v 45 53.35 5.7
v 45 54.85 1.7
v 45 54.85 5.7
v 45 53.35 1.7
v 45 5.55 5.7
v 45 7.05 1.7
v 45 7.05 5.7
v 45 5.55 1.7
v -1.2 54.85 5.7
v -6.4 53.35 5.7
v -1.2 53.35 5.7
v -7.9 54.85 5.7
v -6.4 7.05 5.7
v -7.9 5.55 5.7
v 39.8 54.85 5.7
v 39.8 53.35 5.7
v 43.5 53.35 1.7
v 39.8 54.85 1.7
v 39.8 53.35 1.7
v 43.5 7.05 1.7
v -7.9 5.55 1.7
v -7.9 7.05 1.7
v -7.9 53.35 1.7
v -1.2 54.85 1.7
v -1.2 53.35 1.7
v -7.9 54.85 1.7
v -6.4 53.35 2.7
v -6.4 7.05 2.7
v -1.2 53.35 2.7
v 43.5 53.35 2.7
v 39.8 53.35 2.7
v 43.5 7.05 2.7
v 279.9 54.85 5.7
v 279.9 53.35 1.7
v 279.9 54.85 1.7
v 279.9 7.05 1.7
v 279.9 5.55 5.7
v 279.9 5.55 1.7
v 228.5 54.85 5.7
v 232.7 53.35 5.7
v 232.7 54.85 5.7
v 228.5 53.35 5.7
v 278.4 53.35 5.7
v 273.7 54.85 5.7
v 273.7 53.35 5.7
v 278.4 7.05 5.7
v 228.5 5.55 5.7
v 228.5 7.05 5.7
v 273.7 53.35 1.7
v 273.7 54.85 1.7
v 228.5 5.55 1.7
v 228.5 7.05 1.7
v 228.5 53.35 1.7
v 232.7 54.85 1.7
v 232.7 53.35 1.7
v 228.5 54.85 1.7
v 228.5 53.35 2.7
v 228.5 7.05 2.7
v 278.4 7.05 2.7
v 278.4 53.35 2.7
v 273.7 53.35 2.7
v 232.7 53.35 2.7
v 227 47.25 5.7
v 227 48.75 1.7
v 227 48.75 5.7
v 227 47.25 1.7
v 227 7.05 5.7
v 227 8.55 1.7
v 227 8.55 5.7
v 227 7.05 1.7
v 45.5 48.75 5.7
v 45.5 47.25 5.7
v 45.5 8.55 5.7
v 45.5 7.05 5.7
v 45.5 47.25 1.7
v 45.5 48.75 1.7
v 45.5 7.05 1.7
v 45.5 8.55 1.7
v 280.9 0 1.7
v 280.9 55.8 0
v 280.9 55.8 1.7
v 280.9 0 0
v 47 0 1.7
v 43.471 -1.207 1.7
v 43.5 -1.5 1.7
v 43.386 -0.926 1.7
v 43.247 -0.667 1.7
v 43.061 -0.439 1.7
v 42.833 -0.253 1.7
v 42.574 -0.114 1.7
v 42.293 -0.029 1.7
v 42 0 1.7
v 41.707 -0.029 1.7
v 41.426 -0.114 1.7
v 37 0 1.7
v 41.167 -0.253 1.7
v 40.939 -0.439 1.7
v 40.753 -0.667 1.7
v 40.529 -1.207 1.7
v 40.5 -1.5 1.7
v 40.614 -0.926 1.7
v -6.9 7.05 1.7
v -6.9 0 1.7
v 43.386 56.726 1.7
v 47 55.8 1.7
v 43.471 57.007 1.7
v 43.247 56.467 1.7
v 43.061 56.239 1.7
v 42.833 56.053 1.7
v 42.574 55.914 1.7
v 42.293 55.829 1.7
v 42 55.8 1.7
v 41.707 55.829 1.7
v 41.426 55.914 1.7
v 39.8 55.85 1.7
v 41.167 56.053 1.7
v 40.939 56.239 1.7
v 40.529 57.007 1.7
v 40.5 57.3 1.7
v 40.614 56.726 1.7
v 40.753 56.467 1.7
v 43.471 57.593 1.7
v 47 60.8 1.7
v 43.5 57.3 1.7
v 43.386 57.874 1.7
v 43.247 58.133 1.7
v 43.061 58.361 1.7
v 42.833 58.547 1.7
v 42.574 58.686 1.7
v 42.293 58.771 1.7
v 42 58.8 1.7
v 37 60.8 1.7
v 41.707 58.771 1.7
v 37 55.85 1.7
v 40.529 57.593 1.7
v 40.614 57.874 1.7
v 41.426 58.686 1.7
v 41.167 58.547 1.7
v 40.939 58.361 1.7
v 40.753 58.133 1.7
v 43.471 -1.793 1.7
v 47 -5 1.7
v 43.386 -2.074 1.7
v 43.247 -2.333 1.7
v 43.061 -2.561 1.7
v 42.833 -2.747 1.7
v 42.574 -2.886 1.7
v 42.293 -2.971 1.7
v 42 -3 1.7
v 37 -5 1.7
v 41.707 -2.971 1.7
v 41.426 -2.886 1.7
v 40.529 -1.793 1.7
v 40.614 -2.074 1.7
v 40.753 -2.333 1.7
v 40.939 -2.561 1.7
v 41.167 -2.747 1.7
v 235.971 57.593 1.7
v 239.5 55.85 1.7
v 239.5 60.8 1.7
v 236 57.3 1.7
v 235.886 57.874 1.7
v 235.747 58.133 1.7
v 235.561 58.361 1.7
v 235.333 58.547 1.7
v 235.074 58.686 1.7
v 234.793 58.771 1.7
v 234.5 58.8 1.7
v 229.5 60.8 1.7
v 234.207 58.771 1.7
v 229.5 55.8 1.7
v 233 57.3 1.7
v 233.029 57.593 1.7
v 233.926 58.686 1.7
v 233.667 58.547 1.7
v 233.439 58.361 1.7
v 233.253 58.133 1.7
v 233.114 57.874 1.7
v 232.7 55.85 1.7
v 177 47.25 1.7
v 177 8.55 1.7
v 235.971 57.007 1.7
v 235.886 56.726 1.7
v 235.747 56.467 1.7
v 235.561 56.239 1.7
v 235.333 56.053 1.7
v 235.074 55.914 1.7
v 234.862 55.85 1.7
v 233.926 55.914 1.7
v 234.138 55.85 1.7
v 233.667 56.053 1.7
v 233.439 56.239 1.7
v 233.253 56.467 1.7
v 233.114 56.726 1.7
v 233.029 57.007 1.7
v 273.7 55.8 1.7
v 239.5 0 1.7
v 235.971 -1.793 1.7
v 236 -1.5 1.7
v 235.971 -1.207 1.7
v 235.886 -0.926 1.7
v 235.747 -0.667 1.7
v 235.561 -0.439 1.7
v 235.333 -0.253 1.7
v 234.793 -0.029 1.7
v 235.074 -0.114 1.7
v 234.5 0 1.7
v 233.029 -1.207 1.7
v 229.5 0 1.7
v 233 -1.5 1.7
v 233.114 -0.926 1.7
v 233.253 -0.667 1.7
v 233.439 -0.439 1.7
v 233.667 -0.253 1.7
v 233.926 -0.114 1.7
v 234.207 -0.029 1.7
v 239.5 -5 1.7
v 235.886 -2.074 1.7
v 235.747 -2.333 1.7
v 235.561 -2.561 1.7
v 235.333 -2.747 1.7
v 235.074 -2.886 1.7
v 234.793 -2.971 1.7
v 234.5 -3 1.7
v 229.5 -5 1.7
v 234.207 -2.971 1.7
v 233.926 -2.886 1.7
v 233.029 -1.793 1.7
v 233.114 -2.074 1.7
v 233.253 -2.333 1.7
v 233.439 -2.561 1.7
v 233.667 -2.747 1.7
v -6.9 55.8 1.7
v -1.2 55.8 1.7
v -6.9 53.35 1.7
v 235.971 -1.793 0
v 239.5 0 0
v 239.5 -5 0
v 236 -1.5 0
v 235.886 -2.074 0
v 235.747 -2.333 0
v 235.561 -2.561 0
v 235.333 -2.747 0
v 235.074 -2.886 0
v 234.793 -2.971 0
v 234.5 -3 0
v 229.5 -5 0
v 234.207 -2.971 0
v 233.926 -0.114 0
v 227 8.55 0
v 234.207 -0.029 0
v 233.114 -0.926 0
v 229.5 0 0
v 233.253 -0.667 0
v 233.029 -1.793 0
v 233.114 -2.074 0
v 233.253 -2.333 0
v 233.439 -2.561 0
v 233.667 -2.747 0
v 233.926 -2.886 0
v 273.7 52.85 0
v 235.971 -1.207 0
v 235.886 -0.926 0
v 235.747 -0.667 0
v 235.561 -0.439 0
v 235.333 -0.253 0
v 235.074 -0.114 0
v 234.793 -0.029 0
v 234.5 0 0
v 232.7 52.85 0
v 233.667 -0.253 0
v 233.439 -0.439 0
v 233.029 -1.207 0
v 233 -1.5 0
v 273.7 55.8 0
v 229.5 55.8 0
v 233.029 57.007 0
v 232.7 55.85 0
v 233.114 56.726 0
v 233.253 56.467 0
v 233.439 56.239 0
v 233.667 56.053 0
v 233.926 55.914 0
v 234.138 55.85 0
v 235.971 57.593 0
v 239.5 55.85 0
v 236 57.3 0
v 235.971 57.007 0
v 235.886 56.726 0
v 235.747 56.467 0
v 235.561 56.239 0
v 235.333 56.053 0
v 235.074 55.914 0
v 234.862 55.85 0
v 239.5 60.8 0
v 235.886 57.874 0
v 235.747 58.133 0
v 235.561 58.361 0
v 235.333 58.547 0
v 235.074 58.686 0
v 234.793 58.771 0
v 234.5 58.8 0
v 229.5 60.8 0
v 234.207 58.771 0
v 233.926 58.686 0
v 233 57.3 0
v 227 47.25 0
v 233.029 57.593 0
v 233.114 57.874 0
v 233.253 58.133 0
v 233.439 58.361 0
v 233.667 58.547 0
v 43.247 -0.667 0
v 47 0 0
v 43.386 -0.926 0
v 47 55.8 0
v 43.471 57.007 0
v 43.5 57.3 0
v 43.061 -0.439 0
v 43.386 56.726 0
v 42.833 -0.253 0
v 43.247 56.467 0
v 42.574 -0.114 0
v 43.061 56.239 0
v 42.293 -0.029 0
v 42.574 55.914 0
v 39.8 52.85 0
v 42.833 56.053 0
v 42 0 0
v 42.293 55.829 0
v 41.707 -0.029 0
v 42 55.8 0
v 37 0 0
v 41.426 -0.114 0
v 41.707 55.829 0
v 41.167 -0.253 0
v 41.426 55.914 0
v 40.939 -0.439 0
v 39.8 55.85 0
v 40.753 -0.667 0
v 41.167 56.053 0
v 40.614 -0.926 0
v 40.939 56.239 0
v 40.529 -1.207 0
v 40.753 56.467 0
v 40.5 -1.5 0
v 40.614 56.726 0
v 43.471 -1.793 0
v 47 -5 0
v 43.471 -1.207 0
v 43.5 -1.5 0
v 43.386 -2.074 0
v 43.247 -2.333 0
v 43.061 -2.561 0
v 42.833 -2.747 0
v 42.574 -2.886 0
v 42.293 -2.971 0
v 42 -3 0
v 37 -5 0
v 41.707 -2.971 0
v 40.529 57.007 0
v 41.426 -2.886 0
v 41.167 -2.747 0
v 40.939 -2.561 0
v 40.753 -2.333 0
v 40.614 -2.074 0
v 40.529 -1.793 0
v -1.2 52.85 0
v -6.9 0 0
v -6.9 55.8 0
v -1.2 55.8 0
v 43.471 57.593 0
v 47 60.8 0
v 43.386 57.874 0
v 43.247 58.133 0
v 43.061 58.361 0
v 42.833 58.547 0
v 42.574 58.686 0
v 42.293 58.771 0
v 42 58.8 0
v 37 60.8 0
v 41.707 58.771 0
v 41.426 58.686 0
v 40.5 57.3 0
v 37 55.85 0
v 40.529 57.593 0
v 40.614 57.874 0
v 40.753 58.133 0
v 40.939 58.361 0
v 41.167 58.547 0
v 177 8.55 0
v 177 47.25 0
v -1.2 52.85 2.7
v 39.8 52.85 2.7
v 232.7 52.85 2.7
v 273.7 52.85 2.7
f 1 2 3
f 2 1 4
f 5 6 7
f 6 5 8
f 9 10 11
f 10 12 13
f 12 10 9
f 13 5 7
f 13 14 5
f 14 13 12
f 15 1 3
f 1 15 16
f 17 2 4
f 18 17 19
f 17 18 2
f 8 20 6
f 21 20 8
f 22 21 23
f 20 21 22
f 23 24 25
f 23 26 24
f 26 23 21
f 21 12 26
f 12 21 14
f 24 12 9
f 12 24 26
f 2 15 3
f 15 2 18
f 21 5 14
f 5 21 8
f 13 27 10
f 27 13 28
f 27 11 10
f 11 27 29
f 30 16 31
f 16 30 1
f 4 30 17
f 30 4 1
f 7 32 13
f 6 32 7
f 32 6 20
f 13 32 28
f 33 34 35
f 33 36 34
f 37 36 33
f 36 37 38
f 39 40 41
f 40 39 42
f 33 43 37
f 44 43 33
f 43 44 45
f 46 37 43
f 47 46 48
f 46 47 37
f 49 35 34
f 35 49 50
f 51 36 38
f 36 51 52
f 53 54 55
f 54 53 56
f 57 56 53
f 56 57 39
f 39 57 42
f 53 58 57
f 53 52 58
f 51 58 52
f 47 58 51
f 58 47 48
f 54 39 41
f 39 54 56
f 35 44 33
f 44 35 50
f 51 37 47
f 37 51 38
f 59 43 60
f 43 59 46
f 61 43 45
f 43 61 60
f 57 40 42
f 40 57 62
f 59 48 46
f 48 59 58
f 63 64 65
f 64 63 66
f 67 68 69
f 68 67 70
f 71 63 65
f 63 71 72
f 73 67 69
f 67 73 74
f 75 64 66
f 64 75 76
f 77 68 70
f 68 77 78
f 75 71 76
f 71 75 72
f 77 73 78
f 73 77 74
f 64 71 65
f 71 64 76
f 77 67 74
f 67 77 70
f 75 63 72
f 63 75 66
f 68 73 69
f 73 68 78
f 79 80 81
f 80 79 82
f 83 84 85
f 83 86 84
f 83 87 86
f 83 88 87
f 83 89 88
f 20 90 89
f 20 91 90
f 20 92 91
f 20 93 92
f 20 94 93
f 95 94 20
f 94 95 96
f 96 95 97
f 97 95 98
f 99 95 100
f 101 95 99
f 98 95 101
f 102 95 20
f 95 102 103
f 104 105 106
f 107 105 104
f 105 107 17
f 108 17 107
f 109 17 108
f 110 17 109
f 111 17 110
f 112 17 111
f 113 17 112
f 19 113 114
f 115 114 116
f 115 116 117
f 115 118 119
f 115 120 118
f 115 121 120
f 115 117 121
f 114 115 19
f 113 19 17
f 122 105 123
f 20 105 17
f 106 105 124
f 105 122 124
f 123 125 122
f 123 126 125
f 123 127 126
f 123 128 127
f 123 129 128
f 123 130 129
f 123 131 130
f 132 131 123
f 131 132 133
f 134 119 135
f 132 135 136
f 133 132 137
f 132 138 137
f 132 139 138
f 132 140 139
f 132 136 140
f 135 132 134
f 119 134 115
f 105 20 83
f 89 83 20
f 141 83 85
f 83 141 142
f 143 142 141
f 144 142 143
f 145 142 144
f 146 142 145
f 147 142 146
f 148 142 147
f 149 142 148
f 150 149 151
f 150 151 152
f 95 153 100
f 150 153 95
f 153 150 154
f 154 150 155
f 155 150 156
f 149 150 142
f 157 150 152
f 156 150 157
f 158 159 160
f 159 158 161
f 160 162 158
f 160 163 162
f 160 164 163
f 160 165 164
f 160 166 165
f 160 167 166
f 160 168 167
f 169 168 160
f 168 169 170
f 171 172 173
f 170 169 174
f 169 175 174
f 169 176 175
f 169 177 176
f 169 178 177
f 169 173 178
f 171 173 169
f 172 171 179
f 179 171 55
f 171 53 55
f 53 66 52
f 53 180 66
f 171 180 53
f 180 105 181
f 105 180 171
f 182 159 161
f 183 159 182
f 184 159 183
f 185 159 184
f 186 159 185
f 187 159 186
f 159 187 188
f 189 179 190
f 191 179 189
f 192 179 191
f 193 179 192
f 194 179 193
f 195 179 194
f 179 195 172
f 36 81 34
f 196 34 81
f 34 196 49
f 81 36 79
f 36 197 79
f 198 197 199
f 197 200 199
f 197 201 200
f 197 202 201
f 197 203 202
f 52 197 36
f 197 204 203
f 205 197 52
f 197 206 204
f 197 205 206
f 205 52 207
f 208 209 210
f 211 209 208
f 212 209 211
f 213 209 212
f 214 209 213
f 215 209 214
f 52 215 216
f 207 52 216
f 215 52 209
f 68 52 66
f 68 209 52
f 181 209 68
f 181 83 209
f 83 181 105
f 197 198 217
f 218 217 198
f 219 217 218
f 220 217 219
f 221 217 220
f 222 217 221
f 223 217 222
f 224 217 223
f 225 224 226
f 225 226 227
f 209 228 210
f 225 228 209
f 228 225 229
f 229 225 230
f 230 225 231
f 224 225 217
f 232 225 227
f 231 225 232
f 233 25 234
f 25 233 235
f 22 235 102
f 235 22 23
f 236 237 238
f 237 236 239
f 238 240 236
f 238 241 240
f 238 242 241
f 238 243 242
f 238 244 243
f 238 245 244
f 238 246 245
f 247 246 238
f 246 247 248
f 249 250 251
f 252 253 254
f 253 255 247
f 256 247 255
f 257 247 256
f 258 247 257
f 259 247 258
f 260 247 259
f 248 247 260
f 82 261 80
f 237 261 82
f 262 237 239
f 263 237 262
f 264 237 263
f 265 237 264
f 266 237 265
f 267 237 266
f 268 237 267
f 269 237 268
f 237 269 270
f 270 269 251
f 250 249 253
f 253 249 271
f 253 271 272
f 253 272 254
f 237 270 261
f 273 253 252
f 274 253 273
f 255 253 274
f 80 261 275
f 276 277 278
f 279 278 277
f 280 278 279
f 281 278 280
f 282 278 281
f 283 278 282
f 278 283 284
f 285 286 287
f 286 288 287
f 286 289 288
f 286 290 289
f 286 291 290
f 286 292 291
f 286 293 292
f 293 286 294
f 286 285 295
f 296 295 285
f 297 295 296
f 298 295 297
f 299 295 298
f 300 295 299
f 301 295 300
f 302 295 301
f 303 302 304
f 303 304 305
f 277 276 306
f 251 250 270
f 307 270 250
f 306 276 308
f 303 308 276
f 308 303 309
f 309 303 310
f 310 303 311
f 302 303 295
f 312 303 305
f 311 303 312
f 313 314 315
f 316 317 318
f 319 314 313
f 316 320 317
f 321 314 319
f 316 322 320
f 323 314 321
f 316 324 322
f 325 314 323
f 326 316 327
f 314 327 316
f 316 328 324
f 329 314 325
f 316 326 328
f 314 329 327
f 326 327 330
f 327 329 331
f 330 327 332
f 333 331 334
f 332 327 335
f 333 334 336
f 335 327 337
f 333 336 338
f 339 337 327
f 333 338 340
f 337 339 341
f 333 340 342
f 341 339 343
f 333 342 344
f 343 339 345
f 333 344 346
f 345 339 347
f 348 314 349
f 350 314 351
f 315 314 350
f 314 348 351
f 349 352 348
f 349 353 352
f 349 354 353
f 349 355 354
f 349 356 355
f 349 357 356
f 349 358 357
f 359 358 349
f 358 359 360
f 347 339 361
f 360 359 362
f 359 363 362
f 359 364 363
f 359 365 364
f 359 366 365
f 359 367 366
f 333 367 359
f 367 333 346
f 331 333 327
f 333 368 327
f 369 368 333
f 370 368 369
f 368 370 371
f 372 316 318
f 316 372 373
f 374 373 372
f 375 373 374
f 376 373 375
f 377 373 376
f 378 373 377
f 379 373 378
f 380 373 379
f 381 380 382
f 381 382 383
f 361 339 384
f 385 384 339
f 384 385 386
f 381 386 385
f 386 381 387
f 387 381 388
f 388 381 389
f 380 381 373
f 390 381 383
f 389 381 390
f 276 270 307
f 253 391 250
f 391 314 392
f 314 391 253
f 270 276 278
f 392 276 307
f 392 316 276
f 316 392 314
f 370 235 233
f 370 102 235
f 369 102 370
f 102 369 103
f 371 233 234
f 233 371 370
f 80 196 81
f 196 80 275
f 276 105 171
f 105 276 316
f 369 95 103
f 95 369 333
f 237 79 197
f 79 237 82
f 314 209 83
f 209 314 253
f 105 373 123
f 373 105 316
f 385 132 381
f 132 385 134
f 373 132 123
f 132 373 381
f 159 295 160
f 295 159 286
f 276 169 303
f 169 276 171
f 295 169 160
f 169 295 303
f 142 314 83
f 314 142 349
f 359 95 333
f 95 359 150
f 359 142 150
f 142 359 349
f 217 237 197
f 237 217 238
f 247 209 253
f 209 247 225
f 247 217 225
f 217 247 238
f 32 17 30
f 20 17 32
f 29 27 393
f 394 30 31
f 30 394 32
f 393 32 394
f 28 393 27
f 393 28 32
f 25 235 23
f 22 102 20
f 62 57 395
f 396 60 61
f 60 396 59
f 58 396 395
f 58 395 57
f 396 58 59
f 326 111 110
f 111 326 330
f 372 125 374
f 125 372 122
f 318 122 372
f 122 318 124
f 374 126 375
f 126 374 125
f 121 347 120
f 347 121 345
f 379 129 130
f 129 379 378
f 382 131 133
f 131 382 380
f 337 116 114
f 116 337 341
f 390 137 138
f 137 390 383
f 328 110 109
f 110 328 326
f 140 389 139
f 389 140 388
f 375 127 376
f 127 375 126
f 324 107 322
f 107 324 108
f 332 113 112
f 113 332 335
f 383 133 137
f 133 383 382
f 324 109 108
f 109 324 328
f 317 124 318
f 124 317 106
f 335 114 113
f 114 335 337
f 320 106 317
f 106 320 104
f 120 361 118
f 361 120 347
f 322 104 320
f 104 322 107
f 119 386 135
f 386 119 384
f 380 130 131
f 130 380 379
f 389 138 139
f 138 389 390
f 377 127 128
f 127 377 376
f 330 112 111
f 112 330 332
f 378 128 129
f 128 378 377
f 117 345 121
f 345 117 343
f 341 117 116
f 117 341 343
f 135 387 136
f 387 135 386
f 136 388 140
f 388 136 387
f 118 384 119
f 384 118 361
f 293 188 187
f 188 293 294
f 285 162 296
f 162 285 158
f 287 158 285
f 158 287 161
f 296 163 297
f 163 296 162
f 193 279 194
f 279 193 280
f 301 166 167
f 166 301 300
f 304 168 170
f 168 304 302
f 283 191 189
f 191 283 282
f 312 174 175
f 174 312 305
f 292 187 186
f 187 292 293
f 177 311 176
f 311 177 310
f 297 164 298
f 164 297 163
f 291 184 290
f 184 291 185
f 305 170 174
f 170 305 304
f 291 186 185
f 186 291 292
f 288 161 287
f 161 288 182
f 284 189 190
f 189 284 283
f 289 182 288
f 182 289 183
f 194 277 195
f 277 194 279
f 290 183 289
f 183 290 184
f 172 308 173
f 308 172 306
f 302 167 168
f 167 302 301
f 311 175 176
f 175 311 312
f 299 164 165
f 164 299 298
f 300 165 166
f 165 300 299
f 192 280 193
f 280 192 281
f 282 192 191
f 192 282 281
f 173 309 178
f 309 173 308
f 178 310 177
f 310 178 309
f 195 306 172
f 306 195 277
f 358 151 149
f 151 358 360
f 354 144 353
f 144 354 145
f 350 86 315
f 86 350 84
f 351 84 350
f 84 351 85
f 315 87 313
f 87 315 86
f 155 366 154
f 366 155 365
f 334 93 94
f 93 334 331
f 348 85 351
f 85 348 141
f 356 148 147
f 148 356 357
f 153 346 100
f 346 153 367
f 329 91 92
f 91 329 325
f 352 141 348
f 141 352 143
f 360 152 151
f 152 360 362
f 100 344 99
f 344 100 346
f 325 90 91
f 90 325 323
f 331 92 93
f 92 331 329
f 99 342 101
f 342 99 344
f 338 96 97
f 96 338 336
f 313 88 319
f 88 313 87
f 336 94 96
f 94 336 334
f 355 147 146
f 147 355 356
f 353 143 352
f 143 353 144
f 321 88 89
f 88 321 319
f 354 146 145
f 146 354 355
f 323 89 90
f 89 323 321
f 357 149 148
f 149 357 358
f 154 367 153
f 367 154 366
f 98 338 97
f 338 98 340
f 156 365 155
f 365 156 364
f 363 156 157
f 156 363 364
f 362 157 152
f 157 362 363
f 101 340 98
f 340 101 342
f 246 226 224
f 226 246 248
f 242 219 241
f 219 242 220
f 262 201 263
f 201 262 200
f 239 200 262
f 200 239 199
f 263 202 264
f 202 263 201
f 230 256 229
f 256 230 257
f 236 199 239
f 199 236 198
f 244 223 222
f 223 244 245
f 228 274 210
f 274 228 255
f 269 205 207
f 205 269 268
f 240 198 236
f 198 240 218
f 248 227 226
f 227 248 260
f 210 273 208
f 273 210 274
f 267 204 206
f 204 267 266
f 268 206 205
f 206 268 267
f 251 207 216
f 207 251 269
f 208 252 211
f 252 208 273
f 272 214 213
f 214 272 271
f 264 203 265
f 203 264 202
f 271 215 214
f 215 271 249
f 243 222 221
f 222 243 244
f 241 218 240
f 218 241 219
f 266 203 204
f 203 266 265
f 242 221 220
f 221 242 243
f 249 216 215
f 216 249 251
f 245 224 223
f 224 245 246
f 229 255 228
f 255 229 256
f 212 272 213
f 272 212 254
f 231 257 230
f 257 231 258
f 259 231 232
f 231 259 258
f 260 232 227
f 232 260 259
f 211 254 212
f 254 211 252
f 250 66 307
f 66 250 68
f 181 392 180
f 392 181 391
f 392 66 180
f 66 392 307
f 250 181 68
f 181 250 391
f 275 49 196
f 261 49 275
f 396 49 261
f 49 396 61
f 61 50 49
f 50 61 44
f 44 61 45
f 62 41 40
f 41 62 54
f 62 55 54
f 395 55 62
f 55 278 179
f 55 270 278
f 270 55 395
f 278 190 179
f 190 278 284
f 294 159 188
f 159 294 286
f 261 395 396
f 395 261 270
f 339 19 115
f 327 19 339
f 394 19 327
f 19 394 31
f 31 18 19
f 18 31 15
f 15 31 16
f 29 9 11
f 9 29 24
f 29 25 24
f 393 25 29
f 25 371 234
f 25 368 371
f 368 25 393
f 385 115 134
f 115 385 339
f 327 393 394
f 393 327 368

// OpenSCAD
// Original LCD module is a large rectangular block
//
original_width  = 270.0;    // Ruler measurement
original_depth  = 55.8;     // Front to back
original_height = 1.7;      // How tall the new mount is (not the old module)

// There are 4 mounting holes which project out from
// the rectangle. The posts they drop onto need a slight
// tab
//
//     1                        2
//
//     3                        4
//
mount_hole_tab_1_from_left  = 37.0;
mount_hole_tab_2_from_right = 30.5;
mount_hole_tab_3_from_left  = 37.0;
mount_hole_tab_4_from_right = 30.5;

mount_hole_tab_depth = 5.0;
mount_hole_tab_width = 10.0;

mount_hole_hole_centre_1_3 = mount_hole_tab_1_from_left + (mount_hole_tab_width/2);
mount_hole_hole_centre_2_4 = mount_hole_tab_2_from_right + (mount_hole_tab_width/2);
mount_hole_hole_diameter   = 3.0;
mount_hole_hole_inset      = 2.0 + (mount_hole_hole_diameter/2);   // To hole centre

// A framing wall is created around the MIPI display to hold
// it in place. 
//
// The height of the wall needs to be taller than the display
// is thick. When the bezel clamps down on it, the belzel will
// clamp the wall, not the display itself.
//
// MIPI display is 3.4mm thick, wall needs to be taller.
//
mipi_display_width = 181.5 + 0.5;
mipi_display_depth =  38.2 + 0.5;
mipi_display_frame_height = 3.4 + 0.6;

// The frame walls need to be wide enough so they have the strength
// to hold the display in place. But the wider they are the more the
// gap between main display and side displays. 
// 
mipi_display_frame_width  = 1.5;

mipi_display_frame_outer_width = mipi_display_width + (mipi_display_frame_width*2);
mipi_display_frame_outer_depth = mipi_display_depth + (mipi_display_frame_width*2);

// The MIPI display has a ribbon, a connector and some kapton covered
// circuitry on its underside. There needs to be a hole for this. It's
// also where the display FTC connector heads off to the CM4.
//
mipi_display_circuitry_knockout_width = 50.0;

centre_point_x = original_width / 2+1;
centre_point_y = original_depth / 2;

// Side displays (TFT)
//
frame_width = 1.5;

side_display_width = 50.9 + 0.5;
side_display_depth = 45.8 + 0.5;
side_display_frame_height = 3.4 + 0.6;

side_display_frame_outer_width = side_display_width+2*frame_width;
side_display_frame_outer_depth = side_display_depth+2*frame_width;
side_display_shift= (side_display_frame_outer_depth - mipi_display_frame_outer_depth)/2;

new_base_plate_width = side_display_width*2 + mipi_display_width + frame_width * 2;

$fn = 32;


// Side display, with ribbon cable. display is mounted 'upside down' as if it isn't
// the ribbon cable slot cuts a lower tab off.

side_cable_width = 41;   // DF: AM had this at 40, right side slot was a fraction too narrow
side_cable_depth= 3;
side_cable_height = 20; // Arbitrary

module side_display()
{
  cube( [side_display_width, side_display_depth, side_display_frame_height] );
}
module side_display_cable()
{
  translate([side_display_width/2, side_display_depth+side_cable_depth/2-frame_width/2, 0])
  cube( [side_cable_width, side_cable_depth, side_cable_height], center=true );
}

module display_mount()
{
difference()
{
  // Create a big block and tag on the little tabs for the 
  // mounting holes
  //
  union()
  {
//    cube( [original_width, original_depth, original_height] );
    translate( [-(new_base_plate_width-original_width)/2+2, 0,0])
    cube( [new_base_plate_width, original_depth, original_height] );

    // Sticky out tab, top left
    //
    translate( [mount_hole_tab_1_from_left,
                original_depth,
                0] )
    {
      cube( [mount_hole_tab_width,
             mount_hole_tab_depth,
             original_height] );
    }

    // Sticky out tab, top right
    //
    translate( [original_width - mount_hole_tab_2_from_right - mount_hole_tab_width,
                original_depth,
                0] )
    {
      cube( [mount_hole_tab_width,
             mount_hole_tab_depth,
             original_height] );
    }

    // Sticky out tab, bottom left
    //
    translate( [mount_hole_tab_3_from_left,
                -mount_hole_tab_depth,
                0] )
    {
      cube( [mount_hole_tab_width,
            mount_hole_tab_depth,
            original_height] );
    }

    // Sticky out tab, bottom right
    //
    translate( [original_width - mount_hole_tab_4_from_right - mount_hole_tab_width,,
                -mount_hole_tab_depth,
                0] )
    {
      cube( [mount_hole_tab_width,
            mount_hole_tab_depth,
            original_height] );
    }
    
    // Now place a frame on top for the MIPI display to sit in
    // The seating area is a fraction of a mm larger than the display.
    // It can't rattle, or be too snug. Dimensions come from the
    // datasheet, plus a bit where needed.
    //
    // DF: The top and bottom rails of the MIPI display frame are
    // slightly too wide. They obscure the left side small display.
    // So push them over a couple of mm and make them a couple of mm
    // less wide.
    //
    translate( [centre_point_x - (mipi_display_frame_outer_width/2) + 2.00,
                centre_point_y - (mipi_display_frame_outer_depth/2),
                original_height] )
    {
      difference()
      {
        cube( [mipi_display_frame_outer_width-frame_width - 2.00,
               mipi_display_frame_outer_depth,
               mipi_display_frame_height] );

        translate( [0,
                    mipi_display_frame_width,
                    0] )
          cube( [mipi_display_frame_outer_width,
                mipi_display_depth,
                mipi_display_frame_height] );
      }
    }
 
   
    // LH Side display needs to be lifted up by 1mm
   translate( [centre_point_x - (mipi_display_frame_outer_width/2)-side_display_width,
                centre_point_y - (side_display_frame_outer_depth/2) + side_display_shift, original_height])
    
      cube([ side_display_width, side_display_depth, 1]);

   // Wall around the LH side display
    
   translate( [centre_point_x - (mipi_display_frame_outer_width/2)-side_display_width,
                centre_point_y - (side_display_frame_outer_depth/2) + side_display_shift-frame_width,
                original_height] )
    {
      difference()
      {
        cube( [side_display_frame_outer_width-frame_width,
               side_display_frame_outer_depth,
               side_display_frame_height] );

        translate( [frame_width,
                    frame_width,
                    0] )
          side_display();
          //cube( [side_display_width,
            //    side_display_depth,
              //  side_display_frame_height] );
      }
    }
   
    
  
      // RH Side display needs to be lifted up by 1mm
   translate( [centre_point_x + (mipi_display_frame_outer_width/2)+0,
                centre_point_y - (side_display_frame_outer_depth/2) + side_display_shift, original_height])
    
      cube([ side_display_width, side_display_depth, 1]);

   // Wall around the LH side display
    
   translate( [centre_point_x + (mipi_display_frame_outer_width/2)+0,
                centre_point_y - (side_display_frame_outer_depth/2) + side_display_shift-frame_width,
                original_height] )
    {
      difference()
      {
        // DF: the outer (right side) wall here comes out at 3.0mm.
        // I don't know why, but that's too wide. So trim it.
        cube( [side_display_frame_outer_width-frame_width-1.5,
               side_display_frame_outer_depth,
               side_display_frame_height] );

        translate( [-frame_width,
                    frame_width,
                    0] )

          side_display();
      }
    }
   
    }
  // Top left mounting post hole
  //
  translate( [mount_hole_hole_centre_1_3,
              original_depth + mount_hole_tab_depth - mount_hole_hole_inset,
              0] )
  {
    cylinder( h=original_height, d=mount_hole_hole_diameter, center=false );
  }

  // Top right mounting post hole
  //
  translate( [original_width - mount_hole_hole_centre_2_4,
              original_depth + mount_hole_tab_depth - mount_hole_hole_inset,
              0] )
  {
    cylinder( h=original_height, d=mount_hole_hole_diameter, center=false );
  }

  // Bottom left mounting post hole
  //
  translate( [mount_hole_hole_centre_1_3,
              -mount_hole_tab_depth + mount_hole_hole_inset,
              0] )
  {
    cylinder( h=original_height, d=mount_hole_hole_diameter, center=false );
  }

  // Bottom right mounting post hole
  //
  translate( [original_width - mount_hole_hole_centre_2_4,
              -mount_hole_tab_depth + mount_hole_hole_inset,
              0] )
  {
    cylinder( h=original_height, d=mount_hole_hole_diameter, center=false );
  }
  
  // Knock out the area behind the right side of the display
  // where the FTC connector and circuitry is
  //
  translate( [centre_point_x + (mipi_display_width/2) - mipi_display_circuitry_knockout_width,
              centre_point_y - (mipi_display_depth/2),
              0] )
  {
    cube( [mipi_display_circuitry_knockout_width, mipi_display_depth, original_height] );
  }

// RH cable exit slot  
    translate( [centre_point_x + (mipi_display_frame_outer_width/2)-frame_width + 0.5,
                centre_point_y - (side_display_frame_outer_depth/2) + side_display_shift-frame_width/2+1,
                original_height] )
    {
          // DF: The cutout for the right side display ribbon is about
          // 1mm too far left. I can't see why. I just moved it slightly
          // in the translate and made the slot wider in the module.
          side_display_cable();
    }
   
// LH cable exit slot  
    translate( [centre_point_x - (mipi_display_frame_outer_width/2)-side_display_width+frame_width,
                centre_point_y - (side_display_frame_outer_depth/2) + side_display_shift-frame_width/2+1,
                original_height] )
    {
          side_display_cable();
    }

}


}

display_mount();
